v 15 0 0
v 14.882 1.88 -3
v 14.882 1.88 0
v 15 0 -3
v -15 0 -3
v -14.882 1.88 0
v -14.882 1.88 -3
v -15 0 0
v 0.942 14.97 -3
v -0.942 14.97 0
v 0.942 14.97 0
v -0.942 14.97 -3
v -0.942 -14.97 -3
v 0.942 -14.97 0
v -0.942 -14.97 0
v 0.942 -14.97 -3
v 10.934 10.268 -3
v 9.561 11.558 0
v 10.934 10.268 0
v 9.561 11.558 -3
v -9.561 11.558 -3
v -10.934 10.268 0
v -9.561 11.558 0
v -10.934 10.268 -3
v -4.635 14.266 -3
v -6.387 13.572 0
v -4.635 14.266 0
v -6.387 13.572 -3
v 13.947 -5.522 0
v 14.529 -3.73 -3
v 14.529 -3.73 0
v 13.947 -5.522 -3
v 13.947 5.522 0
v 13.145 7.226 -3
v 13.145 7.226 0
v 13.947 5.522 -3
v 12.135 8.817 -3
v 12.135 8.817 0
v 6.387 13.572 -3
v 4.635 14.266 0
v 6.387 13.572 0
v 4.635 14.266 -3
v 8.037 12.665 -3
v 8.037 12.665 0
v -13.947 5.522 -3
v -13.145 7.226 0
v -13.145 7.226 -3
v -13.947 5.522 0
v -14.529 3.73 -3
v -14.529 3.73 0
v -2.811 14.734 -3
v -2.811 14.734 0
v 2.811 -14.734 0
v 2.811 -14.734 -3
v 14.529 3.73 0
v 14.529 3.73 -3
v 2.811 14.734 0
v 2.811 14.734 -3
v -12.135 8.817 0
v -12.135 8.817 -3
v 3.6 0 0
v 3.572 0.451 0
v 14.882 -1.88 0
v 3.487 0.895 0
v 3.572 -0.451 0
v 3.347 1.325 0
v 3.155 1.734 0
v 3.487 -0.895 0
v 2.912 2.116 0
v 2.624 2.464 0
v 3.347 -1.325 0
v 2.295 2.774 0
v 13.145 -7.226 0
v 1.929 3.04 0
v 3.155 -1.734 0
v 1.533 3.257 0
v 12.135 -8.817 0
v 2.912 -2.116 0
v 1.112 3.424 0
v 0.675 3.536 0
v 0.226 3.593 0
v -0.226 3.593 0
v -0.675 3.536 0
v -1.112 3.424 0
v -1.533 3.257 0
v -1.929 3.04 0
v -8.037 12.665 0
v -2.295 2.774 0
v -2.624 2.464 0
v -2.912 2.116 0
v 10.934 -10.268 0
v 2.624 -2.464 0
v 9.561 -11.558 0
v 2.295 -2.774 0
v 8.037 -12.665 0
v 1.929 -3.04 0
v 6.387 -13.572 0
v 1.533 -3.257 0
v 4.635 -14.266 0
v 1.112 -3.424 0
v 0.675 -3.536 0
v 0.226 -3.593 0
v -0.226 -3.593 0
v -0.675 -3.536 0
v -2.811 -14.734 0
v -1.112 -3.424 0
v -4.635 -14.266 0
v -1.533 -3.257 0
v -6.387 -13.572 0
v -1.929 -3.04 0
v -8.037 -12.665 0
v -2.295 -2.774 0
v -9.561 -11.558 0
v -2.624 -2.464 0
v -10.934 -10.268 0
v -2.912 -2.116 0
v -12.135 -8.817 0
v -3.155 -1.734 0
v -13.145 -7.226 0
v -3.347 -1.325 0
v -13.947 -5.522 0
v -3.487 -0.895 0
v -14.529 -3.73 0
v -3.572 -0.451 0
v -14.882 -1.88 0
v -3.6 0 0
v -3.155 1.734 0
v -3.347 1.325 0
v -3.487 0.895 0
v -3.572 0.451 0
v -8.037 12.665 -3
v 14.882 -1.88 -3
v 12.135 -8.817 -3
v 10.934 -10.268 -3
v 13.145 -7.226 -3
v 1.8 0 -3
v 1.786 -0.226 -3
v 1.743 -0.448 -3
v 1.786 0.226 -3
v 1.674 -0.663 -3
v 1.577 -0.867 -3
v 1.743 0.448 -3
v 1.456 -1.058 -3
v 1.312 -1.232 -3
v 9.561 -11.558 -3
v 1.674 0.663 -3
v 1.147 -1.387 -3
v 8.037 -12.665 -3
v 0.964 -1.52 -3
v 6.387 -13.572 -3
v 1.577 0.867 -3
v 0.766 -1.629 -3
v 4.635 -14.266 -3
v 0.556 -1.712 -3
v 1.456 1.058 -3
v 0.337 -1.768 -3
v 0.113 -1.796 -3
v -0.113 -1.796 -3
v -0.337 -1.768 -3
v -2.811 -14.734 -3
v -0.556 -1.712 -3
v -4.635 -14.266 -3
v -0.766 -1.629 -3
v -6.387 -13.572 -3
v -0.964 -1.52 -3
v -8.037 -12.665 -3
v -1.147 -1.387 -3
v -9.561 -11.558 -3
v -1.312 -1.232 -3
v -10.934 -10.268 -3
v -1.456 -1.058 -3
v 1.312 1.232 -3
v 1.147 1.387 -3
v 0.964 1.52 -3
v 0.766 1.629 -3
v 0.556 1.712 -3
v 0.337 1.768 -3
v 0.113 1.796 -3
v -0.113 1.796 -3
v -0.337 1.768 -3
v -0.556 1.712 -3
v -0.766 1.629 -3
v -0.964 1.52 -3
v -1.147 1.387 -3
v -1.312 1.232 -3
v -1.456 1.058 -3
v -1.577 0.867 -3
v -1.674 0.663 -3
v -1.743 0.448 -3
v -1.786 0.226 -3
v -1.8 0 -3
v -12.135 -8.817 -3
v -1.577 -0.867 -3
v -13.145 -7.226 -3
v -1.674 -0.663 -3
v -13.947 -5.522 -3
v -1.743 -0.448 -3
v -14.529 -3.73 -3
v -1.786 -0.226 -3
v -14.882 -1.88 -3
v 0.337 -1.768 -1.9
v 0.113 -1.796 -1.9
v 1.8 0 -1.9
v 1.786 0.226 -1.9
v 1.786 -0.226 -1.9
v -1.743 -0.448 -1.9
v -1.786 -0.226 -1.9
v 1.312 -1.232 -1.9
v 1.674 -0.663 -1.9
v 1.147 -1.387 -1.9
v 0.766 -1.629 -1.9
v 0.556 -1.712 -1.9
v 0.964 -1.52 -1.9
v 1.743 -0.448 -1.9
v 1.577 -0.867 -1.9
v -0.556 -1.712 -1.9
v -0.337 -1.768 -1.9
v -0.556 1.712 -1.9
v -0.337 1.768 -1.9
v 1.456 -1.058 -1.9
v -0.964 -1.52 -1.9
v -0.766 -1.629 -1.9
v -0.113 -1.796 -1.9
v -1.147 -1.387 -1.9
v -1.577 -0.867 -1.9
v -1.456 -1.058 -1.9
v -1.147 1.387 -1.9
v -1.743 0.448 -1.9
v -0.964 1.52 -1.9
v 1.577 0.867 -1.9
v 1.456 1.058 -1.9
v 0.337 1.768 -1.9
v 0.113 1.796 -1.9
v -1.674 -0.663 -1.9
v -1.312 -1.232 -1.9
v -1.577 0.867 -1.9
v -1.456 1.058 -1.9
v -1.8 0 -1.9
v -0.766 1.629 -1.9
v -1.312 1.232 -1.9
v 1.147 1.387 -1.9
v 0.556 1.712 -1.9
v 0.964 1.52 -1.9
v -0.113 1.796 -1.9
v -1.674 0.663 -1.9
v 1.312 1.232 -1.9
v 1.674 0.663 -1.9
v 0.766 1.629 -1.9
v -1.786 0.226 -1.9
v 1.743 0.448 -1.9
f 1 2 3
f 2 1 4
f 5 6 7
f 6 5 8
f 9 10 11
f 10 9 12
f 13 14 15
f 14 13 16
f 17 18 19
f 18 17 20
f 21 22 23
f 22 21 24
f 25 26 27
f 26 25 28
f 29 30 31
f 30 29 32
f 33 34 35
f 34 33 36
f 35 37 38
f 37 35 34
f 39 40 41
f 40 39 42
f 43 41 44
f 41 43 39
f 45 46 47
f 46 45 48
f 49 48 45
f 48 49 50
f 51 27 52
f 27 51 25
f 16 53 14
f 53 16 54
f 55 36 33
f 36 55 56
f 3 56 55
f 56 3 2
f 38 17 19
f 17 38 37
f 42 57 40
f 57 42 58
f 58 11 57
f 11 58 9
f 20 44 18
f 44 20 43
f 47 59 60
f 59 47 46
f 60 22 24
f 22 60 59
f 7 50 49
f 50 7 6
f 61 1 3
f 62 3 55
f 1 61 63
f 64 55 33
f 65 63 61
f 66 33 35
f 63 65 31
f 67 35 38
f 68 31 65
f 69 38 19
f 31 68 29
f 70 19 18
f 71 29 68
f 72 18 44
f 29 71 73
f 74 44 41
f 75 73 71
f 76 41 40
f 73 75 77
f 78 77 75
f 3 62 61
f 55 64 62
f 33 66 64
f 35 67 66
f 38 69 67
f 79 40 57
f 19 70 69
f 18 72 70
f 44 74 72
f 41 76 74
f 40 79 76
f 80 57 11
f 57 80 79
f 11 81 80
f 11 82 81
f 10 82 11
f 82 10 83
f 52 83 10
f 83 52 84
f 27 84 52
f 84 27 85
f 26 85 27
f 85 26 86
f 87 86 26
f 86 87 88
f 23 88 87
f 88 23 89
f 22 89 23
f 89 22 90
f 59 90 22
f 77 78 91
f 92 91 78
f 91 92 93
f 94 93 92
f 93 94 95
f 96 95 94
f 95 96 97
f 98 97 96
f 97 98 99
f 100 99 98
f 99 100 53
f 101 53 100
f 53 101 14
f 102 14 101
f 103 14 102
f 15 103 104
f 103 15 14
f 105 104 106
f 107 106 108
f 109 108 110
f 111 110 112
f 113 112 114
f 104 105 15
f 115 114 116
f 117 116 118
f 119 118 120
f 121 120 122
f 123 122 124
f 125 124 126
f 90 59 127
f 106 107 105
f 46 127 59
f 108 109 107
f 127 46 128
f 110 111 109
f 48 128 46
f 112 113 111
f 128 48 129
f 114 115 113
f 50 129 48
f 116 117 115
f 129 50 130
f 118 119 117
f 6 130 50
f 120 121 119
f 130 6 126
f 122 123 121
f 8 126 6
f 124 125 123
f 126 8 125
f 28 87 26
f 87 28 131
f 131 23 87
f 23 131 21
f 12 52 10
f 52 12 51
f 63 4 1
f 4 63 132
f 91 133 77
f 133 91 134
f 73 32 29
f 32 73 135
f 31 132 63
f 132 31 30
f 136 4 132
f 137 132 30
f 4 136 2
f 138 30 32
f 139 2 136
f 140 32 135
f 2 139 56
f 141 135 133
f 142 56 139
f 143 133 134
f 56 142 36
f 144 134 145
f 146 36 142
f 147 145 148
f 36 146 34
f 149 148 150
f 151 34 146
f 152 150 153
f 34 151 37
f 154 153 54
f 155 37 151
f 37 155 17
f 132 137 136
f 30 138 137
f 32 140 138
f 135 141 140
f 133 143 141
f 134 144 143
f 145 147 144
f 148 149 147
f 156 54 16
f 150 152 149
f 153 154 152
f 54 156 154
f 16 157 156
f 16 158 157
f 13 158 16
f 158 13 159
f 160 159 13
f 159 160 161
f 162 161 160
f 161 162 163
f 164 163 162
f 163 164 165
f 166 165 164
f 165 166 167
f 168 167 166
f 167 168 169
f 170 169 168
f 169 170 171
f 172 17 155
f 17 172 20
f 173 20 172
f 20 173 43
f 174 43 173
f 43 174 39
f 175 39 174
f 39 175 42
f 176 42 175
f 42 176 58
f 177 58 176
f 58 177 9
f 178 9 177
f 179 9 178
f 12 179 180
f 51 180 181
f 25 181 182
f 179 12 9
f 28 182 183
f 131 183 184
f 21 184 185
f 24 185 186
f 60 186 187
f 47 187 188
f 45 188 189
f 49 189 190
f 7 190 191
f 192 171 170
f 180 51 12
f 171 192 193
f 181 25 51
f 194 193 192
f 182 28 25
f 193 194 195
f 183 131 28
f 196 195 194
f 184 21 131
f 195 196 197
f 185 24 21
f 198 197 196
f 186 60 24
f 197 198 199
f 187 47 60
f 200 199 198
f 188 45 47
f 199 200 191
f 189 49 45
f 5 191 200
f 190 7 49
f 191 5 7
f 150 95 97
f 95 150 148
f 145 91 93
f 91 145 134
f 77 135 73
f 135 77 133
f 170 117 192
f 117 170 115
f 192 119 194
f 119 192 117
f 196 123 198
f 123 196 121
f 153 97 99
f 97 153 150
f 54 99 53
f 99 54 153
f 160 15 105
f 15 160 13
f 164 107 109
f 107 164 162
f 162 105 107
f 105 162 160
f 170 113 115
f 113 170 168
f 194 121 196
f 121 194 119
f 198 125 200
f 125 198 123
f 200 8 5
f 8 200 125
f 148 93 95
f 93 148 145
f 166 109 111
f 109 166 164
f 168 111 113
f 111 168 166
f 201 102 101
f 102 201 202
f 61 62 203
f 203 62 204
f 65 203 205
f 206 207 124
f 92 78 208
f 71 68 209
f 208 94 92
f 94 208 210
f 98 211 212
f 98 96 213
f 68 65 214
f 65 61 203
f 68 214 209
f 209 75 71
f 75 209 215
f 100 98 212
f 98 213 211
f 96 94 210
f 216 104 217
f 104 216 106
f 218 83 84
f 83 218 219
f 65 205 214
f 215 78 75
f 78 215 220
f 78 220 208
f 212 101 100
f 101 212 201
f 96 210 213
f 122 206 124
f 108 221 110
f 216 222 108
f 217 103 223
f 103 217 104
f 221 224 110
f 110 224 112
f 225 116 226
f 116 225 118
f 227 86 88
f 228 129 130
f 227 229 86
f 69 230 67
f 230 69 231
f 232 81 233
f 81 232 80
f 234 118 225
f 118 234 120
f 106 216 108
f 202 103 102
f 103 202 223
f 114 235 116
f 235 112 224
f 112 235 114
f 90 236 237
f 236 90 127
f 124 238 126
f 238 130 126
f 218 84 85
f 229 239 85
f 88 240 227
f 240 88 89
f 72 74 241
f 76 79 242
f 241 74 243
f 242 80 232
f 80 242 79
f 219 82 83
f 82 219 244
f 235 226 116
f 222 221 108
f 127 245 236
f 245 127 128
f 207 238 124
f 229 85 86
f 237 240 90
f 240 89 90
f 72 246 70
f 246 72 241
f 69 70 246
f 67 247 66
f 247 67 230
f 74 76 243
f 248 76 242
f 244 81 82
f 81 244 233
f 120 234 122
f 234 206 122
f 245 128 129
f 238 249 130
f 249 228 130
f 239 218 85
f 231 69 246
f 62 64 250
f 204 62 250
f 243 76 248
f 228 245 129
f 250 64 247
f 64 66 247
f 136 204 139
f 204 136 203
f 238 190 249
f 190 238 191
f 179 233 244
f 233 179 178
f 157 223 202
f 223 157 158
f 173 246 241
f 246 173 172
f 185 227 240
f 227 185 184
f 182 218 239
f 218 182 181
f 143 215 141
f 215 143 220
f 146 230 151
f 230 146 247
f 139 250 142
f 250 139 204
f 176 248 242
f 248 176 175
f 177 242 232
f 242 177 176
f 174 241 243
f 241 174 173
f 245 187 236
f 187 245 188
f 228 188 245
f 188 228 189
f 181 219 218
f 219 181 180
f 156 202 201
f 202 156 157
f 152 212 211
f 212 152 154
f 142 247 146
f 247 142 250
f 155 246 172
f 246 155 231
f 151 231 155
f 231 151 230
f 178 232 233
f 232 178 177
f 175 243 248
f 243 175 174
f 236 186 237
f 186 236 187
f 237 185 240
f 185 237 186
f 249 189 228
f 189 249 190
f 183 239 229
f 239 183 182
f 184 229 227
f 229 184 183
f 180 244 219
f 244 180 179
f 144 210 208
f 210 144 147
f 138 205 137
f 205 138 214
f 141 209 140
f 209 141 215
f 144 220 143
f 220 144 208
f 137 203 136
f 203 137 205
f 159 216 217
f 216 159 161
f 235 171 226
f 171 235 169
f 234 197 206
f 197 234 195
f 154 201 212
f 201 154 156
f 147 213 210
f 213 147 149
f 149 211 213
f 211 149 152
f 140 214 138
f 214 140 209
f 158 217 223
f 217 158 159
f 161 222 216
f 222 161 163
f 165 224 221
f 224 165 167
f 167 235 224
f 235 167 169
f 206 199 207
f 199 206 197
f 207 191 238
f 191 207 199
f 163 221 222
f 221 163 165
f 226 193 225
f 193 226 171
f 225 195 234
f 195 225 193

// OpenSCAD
$fn = 50;


difference() {
	union() {
		translate(v = [0, 0, -3.0000000000]) {
			cylinder(h = 3, r = 15.0000000000);
		}
		translate(v = [0, 0, -3.0000000000]) {
			cylinder(h = 3, r = 2.8750000000);
		}
	}
	union() {
		translate(v = [0, 0, 0]) {
			rotate(a = [0, 0, 0]) {
				difference() {
					union() {
						translate(v = [0, 0, -3.0000000000]) {
							cylinder(h = 3, r = 1.5000000000);
						}
						translate(v = [0, 0, -1.9000000000]) {
							cylinder(h = 1.9000000000, r1 = 1.8000000000, r2 = 3.6000000000);
						}
						translate(v = [0, 0, -3.0000000000]) {
							cylinder(h = 3, r = 1.8000000000);
						}
						translate(v = [0, 0, -3.0000000000]) {
							cylinder(h = 3, r = 1.5000000000);
						}
					}
					union();
				}
			}
		}
	}
}
